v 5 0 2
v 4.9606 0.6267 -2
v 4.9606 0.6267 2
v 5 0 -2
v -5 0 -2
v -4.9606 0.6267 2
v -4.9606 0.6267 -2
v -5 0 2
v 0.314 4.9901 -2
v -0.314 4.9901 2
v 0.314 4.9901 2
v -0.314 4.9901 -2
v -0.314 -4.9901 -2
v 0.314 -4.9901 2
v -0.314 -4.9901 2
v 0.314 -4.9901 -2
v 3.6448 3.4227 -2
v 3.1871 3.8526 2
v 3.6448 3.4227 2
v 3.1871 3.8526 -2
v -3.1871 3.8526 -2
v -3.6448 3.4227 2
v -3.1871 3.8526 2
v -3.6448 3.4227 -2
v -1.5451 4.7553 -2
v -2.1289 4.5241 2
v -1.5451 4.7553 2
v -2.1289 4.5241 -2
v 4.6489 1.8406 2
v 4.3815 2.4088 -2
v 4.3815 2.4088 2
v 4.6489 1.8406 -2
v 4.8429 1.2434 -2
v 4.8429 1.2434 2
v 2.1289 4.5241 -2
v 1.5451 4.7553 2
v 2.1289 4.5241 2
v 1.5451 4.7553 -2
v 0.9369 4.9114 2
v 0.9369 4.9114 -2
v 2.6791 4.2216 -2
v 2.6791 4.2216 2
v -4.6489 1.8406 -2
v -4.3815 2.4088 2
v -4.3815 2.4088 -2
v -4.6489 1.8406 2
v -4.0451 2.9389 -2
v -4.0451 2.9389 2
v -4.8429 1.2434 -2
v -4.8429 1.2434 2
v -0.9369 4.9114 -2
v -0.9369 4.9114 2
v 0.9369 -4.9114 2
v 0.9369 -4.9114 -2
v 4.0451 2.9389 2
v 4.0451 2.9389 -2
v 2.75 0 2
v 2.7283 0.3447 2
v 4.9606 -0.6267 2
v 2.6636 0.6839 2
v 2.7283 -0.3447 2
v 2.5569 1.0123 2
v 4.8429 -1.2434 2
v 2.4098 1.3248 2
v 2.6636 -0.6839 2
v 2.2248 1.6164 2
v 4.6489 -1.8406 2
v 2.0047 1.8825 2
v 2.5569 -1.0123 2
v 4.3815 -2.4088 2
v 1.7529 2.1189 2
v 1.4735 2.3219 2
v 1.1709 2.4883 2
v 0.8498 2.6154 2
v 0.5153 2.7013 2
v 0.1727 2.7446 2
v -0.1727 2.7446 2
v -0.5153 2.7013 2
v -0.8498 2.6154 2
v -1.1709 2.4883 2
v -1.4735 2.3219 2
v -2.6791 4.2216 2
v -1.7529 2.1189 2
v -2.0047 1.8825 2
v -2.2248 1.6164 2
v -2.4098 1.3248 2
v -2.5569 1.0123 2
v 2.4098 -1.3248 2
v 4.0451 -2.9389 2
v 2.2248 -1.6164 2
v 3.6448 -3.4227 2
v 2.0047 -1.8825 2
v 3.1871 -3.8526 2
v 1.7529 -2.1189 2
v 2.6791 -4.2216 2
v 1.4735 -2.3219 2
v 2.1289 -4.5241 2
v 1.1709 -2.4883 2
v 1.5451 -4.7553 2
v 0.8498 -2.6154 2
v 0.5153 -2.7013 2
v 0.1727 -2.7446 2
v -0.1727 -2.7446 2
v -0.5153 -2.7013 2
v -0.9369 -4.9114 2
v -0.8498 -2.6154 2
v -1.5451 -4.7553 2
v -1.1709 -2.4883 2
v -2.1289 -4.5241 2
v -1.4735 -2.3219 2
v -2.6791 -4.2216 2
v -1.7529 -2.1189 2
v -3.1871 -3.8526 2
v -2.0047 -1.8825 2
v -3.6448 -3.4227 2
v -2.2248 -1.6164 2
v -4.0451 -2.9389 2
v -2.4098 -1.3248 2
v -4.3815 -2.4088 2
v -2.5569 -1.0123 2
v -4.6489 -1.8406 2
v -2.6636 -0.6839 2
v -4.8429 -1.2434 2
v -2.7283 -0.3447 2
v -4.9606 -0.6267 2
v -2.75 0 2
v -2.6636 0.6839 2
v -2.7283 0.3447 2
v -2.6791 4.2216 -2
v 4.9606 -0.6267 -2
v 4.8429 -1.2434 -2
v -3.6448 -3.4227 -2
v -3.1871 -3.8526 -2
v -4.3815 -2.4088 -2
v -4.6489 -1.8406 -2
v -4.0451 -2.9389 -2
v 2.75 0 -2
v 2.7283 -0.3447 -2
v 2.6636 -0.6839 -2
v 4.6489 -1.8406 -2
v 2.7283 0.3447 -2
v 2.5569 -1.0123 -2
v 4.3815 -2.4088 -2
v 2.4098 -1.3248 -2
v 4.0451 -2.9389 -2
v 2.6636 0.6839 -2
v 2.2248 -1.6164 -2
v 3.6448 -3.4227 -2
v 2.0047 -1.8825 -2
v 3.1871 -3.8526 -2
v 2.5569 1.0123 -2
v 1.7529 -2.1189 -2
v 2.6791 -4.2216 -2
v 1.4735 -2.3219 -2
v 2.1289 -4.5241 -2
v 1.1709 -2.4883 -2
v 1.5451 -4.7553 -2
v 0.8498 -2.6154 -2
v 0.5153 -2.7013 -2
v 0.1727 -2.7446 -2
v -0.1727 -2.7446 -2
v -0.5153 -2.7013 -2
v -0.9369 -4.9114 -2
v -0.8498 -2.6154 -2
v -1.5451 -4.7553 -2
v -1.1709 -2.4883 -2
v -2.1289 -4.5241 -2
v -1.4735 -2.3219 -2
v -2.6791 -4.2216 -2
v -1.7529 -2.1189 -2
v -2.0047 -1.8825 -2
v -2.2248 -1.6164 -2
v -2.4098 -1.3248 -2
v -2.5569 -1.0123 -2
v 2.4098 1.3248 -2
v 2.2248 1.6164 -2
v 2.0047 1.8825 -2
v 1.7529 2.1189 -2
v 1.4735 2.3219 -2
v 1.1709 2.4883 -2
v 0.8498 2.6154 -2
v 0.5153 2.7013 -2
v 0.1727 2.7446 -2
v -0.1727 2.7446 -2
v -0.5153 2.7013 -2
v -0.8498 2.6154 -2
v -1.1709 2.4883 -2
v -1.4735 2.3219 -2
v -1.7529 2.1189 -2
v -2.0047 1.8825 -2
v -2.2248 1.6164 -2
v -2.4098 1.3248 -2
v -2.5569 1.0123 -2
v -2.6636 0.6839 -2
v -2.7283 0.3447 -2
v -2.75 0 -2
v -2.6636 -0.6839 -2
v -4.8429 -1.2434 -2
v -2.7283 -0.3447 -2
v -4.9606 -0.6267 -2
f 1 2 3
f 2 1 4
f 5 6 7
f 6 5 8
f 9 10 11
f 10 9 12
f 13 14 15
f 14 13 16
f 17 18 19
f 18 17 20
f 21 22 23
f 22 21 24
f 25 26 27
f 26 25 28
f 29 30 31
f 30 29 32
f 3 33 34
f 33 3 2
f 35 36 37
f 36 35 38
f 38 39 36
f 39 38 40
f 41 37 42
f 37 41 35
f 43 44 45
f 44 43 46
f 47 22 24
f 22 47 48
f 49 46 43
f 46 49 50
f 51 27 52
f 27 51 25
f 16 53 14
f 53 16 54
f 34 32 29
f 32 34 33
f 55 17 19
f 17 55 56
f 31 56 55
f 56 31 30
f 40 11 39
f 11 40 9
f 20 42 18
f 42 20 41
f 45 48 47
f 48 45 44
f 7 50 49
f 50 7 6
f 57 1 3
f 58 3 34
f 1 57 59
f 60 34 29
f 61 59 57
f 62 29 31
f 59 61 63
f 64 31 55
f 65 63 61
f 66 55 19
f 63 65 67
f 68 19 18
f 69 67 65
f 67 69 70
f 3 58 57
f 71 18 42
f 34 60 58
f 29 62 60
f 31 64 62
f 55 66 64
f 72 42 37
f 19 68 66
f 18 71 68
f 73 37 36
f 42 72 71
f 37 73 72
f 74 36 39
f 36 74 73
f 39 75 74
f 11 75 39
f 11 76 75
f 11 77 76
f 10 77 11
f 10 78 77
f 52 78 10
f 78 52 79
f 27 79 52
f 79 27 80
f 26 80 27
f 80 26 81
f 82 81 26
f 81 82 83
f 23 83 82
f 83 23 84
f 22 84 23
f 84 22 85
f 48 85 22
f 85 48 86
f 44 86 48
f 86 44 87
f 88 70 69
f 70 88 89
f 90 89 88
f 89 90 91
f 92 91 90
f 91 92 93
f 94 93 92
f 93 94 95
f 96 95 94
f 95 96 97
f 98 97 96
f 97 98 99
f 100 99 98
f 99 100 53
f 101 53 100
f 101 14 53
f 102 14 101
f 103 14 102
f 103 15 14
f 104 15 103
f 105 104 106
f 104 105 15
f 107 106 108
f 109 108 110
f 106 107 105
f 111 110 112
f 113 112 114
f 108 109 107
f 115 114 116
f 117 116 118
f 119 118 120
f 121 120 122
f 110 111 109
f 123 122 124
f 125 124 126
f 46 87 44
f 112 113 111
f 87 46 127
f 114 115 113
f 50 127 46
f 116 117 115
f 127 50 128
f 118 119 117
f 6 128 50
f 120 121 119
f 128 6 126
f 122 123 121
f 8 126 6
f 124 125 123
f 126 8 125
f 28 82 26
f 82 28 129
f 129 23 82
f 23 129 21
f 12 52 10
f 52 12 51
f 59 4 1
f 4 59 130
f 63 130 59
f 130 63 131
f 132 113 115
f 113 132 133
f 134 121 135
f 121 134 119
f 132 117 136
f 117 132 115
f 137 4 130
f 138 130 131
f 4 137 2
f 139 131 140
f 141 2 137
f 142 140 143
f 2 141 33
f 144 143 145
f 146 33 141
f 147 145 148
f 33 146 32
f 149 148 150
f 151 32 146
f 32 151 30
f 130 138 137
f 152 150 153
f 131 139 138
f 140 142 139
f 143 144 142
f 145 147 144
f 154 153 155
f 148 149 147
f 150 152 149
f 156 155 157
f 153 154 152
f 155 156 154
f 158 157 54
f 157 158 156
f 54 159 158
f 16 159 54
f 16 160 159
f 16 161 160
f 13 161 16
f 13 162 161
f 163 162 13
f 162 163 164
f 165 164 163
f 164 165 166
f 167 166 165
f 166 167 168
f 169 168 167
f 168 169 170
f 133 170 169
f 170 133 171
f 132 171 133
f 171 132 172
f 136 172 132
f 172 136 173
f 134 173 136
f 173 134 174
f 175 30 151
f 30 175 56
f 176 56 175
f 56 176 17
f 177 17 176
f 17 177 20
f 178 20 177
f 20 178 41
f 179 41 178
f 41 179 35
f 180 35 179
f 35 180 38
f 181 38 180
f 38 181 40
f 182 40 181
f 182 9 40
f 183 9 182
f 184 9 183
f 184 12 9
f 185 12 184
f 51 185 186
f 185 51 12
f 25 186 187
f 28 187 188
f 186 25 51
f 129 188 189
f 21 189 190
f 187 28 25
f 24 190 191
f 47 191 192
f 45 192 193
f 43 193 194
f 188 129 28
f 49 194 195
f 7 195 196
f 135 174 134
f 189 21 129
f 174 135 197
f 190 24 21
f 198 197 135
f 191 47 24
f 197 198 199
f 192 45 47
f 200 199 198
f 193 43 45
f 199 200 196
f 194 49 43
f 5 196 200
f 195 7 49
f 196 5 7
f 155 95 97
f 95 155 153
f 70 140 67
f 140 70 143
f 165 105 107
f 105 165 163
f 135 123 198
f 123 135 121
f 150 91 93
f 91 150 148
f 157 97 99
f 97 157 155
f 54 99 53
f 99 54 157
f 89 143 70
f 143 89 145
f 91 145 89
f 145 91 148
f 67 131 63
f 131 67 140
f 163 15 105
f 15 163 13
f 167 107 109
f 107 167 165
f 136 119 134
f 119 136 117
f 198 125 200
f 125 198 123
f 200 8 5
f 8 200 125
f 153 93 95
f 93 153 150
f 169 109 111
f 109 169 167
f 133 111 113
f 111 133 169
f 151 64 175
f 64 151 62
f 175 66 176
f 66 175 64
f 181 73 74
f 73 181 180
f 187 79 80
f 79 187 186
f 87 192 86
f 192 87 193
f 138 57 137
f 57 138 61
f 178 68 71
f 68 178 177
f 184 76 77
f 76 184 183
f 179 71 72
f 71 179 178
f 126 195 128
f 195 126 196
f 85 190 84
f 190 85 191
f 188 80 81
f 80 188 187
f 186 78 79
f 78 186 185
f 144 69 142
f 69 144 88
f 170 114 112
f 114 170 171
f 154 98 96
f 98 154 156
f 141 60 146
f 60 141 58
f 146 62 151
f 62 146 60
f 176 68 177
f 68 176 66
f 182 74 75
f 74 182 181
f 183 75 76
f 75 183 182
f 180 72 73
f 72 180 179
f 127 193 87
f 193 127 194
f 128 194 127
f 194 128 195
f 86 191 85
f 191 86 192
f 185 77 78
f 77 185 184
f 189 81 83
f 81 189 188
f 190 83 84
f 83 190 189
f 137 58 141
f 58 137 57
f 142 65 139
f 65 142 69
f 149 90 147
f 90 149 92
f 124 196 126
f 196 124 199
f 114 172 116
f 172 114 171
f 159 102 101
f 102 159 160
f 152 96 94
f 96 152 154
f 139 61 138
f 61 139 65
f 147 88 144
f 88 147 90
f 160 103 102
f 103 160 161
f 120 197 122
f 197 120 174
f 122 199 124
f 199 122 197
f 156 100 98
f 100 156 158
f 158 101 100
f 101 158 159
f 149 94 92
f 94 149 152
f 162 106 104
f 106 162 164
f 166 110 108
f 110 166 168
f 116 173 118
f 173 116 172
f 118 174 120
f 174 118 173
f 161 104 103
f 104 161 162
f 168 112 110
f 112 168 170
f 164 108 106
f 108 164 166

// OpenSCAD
$fn = 50;


difference() {
	union() {
		translate(v = [0, 0, -2.0000000000]) {
			cylinder(h = 4, r = 5.0000000000);
		}
	}
	union() {
		translate(v = [0, 0, -100.0000000000]) {
			cylinder(h = 200, r = 2.7500000000);
		}
	}
}
